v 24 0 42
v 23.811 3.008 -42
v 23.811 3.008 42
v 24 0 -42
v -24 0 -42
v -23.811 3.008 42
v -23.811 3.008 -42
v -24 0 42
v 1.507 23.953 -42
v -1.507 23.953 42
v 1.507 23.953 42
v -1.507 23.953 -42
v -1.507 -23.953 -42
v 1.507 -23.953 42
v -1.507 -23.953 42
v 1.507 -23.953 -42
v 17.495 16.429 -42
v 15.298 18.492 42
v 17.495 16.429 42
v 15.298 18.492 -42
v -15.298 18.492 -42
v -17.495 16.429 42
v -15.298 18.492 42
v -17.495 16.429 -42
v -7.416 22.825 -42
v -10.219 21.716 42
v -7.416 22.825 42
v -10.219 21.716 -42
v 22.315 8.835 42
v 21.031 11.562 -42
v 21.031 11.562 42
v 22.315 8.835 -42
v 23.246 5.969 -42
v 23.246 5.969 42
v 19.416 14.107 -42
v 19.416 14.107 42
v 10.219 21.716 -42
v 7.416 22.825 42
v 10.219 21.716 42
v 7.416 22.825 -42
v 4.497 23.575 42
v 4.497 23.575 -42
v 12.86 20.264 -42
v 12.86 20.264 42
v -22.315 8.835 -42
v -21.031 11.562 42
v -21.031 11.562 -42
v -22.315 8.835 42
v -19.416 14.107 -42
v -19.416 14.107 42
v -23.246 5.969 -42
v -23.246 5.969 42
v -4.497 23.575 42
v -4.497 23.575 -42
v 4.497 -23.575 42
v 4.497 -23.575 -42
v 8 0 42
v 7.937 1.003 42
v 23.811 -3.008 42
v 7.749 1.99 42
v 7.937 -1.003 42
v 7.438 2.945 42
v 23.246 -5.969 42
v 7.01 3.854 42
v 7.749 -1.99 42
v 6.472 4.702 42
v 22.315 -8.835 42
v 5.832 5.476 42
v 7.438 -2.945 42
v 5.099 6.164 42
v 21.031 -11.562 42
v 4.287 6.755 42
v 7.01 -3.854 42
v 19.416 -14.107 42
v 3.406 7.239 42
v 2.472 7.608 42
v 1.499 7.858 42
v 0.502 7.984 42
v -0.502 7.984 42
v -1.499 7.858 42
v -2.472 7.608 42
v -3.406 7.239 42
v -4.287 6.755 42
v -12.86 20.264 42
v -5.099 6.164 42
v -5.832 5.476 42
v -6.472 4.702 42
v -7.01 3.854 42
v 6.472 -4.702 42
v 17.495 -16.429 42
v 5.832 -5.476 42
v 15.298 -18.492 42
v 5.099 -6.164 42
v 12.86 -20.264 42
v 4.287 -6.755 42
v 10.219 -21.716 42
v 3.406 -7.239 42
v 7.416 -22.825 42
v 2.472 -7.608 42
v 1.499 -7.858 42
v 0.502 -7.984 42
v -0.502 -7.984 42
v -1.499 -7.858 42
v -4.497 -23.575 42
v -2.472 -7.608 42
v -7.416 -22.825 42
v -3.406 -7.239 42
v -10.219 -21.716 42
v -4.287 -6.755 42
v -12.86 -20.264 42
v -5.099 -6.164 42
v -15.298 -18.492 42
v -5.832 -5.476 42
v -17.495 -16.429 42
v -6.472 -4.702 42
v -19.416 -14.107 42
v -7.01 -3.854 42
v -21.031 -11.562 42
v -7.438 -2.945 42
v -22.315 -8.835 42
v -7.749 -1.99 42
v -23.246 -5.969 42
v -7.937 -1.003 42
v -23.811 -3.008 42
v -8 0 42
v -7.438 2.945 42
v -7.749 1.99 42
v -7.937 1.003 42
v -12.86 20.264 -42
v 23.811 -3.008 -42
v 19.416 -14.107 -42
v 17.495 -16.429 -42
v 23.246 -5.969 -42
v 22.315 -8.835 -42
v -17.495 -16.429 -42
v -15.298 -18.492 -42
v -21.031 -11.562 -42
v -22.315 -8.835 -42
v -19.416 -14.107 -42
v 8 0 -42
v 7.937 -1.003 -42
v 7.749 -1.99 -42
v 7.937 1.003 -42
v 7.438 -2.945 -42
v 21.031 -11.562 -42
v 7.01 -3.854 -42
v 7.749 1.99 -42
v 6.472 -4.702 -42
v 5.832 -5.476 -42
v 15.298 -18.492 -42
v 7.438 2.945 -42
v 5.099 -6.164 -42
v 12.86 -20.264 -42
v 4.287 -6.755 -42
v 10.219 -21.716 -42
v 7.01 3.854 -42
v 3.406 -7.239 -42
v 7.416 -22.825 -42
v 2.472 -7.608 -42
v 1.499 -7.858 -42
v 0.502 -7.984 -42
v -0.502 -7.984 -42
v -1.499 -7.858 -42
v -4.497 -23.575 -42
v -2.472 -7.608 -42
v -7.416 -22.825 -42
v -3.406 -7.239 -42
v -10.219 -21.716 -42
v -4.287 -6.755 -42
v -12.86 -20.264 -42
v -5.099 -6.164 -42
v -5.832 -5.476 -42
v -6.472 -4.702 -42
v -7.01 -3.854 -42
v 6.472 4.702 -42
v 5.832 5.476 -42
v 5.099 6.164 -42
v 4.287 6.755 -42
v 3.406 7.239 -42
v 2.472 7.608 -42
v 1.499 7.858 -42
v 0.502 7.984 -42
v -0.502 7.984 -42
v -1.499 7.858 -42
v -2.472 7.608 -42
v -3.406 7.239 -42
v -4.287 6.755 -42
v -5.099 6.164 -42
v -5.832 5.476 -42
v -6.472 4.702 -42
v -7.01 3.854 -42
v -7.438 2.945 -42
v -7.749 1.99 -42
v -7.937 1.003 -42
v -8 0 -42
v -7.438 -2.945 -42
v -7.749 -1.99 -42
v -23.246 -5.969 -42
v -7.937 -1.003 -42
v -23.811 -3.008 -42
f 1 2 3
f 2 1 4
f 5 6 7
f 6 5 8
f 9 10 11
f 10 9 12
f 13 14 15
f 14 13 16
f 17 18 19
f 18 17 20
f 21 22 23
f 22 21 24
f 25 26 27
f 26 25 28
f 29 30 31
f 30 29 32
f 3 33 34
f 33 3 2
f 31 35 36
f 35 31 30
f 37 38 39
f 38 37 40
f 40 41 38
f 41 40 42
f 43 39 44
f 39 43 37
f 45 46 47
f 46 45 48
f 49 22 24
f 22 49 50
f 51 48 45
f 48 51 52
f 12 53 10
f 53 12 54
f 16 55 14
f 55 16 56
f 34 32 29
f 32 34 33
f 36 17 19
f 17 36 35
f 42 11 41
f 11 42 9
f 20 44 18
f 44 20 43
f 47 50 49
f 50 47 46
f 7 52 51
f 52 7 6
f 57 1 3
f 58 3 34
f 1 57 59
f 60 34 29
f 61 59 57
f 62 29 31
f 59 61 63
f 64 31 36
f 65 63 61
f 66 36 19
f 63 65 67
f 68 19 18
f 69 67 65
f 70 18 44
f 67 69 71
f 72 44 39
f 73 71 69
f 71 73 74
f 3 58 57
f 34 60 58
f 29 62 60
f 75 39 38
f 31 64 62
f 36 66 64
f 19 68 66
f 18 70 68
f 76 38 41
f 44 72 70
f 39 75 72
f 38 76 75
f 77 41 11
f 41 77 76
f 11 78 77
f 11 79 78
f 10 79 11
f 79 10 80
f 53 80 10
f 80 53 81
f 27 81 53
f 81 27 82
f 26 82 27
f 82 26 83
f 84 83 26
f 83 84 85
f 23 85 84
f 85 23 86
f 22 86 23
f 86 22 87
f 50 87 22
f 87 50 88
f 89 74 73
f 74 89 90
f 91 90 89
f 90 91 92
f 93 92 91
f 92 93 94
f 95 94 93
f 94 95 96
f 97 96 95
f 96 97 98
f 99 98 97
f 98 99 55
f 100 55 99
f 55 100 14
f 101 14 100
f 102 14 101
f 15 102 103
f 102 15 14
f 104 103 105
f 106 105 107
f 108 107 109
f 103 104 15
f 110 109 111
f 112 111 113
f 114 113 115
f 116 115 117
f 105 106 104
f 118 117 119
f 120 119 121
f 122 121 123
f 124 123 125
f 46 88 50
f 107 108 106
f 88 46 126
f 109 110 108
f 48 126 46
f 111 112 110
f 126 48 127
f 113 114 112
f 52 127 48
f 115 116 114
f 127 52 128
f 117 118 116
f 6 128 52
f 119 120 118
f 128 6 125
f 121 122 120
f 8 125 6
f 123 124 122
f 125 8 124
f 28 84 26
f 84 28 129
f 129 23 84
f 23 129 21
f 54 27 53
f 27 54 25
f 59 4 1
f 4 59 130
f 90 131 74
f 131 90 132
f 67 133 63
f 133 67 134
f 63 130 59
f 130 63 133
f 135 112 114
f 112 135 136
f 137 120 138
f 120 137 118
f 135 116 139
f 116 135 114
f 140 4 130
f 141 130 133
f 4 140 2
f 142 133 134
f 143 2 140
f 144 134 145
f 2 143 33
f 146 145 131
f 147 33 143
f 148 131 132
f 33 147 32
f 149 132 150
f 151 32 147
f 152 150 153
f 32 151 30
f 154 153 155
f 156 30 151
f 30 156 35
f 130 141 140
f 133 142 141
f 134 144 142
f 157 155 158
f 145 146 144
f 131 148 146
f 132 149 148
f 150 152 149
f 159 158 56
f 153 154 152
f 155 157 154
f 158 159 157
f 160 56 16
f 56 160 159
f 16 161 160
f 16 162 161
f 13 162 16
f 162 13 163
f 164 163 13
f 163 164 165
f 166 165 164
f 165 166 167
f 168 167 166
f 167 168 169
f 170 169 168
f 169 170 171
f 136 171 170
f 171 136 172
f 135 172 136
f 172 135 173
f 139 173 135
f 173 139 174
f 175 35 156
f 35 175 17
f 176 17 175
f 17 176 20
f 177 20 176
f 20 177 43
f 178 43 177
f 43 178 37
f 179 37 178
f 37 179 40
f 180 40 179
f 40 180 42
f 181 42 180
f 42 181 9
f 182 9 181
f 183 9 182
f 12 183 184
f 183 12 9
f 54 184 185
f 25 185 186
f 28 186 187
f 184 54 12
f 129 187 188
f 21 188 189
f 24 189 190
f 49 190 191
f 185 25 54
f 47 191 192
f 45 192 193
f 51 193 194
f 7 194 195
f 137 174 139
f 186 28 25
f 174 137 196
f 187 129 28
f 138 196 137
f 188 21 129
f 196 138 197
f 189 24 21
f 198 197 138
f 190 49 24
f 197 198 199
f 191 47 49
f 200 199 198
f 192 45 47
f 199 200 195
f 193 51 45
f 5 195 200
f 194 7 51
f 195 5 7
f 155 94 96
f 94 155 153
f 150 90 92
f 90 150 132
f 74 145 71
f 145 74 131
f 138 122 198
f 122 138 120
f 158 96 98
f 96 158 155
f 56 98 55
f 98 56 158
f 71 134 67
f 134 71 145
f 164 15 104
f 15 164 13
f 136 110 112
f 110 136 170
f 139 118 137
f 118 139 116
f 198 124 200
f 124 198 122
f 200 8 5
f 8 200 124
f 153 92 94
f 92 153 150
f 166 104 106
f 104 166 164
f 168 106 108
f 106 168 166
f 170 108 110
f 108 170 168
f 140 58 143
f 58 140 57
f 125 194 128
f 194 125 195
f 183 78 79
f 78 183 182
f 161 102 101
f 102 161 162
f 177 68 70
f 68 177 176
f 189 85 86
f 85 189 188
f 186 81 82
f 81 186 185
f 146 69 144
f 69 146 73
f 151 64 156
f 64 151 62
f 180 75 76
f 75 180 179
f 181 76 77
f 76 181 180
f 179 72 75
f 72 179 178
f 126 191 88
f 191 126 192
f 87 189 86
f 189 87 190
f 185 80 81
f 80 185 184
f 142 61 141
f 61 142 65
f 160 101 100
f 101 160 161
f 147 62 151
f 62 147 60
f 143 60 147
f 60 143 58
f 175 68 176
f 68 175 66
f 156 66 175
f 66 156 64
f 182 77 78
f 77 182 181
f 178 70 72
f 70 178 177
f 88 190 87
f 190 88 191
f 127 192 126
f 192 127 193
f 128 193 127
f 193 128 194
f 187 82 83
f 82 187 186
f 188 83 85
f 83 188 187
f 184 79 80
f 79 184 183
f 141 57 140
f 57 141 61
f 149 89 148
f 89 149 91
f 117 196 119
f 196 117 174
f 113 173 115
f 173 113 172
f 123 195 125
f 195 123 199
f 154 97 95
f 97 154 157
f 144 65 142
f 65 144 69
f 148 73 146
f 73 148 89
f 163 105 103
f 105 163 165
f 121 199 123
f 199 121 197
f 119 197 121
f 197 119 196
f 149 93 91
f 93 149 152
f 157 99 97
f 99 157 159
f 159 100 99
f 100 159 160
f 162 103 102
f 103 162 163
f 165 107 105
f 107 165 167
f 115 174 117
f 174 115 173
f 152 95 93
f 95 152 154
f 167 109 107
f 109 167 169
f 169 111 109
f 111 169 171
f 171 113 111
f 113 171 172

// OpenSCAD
$fn = 50;


difference() {
	union() {
		translate(v = [0, 0, -42.0000000000]) {
			cylinder(h = 84, r = 24.0000000000);
		}
	}
	union() {
		translate(v = [0, 0, -100.0000000000]) {
			cylinder(h = 200, r = 8);
		}
	}
}
